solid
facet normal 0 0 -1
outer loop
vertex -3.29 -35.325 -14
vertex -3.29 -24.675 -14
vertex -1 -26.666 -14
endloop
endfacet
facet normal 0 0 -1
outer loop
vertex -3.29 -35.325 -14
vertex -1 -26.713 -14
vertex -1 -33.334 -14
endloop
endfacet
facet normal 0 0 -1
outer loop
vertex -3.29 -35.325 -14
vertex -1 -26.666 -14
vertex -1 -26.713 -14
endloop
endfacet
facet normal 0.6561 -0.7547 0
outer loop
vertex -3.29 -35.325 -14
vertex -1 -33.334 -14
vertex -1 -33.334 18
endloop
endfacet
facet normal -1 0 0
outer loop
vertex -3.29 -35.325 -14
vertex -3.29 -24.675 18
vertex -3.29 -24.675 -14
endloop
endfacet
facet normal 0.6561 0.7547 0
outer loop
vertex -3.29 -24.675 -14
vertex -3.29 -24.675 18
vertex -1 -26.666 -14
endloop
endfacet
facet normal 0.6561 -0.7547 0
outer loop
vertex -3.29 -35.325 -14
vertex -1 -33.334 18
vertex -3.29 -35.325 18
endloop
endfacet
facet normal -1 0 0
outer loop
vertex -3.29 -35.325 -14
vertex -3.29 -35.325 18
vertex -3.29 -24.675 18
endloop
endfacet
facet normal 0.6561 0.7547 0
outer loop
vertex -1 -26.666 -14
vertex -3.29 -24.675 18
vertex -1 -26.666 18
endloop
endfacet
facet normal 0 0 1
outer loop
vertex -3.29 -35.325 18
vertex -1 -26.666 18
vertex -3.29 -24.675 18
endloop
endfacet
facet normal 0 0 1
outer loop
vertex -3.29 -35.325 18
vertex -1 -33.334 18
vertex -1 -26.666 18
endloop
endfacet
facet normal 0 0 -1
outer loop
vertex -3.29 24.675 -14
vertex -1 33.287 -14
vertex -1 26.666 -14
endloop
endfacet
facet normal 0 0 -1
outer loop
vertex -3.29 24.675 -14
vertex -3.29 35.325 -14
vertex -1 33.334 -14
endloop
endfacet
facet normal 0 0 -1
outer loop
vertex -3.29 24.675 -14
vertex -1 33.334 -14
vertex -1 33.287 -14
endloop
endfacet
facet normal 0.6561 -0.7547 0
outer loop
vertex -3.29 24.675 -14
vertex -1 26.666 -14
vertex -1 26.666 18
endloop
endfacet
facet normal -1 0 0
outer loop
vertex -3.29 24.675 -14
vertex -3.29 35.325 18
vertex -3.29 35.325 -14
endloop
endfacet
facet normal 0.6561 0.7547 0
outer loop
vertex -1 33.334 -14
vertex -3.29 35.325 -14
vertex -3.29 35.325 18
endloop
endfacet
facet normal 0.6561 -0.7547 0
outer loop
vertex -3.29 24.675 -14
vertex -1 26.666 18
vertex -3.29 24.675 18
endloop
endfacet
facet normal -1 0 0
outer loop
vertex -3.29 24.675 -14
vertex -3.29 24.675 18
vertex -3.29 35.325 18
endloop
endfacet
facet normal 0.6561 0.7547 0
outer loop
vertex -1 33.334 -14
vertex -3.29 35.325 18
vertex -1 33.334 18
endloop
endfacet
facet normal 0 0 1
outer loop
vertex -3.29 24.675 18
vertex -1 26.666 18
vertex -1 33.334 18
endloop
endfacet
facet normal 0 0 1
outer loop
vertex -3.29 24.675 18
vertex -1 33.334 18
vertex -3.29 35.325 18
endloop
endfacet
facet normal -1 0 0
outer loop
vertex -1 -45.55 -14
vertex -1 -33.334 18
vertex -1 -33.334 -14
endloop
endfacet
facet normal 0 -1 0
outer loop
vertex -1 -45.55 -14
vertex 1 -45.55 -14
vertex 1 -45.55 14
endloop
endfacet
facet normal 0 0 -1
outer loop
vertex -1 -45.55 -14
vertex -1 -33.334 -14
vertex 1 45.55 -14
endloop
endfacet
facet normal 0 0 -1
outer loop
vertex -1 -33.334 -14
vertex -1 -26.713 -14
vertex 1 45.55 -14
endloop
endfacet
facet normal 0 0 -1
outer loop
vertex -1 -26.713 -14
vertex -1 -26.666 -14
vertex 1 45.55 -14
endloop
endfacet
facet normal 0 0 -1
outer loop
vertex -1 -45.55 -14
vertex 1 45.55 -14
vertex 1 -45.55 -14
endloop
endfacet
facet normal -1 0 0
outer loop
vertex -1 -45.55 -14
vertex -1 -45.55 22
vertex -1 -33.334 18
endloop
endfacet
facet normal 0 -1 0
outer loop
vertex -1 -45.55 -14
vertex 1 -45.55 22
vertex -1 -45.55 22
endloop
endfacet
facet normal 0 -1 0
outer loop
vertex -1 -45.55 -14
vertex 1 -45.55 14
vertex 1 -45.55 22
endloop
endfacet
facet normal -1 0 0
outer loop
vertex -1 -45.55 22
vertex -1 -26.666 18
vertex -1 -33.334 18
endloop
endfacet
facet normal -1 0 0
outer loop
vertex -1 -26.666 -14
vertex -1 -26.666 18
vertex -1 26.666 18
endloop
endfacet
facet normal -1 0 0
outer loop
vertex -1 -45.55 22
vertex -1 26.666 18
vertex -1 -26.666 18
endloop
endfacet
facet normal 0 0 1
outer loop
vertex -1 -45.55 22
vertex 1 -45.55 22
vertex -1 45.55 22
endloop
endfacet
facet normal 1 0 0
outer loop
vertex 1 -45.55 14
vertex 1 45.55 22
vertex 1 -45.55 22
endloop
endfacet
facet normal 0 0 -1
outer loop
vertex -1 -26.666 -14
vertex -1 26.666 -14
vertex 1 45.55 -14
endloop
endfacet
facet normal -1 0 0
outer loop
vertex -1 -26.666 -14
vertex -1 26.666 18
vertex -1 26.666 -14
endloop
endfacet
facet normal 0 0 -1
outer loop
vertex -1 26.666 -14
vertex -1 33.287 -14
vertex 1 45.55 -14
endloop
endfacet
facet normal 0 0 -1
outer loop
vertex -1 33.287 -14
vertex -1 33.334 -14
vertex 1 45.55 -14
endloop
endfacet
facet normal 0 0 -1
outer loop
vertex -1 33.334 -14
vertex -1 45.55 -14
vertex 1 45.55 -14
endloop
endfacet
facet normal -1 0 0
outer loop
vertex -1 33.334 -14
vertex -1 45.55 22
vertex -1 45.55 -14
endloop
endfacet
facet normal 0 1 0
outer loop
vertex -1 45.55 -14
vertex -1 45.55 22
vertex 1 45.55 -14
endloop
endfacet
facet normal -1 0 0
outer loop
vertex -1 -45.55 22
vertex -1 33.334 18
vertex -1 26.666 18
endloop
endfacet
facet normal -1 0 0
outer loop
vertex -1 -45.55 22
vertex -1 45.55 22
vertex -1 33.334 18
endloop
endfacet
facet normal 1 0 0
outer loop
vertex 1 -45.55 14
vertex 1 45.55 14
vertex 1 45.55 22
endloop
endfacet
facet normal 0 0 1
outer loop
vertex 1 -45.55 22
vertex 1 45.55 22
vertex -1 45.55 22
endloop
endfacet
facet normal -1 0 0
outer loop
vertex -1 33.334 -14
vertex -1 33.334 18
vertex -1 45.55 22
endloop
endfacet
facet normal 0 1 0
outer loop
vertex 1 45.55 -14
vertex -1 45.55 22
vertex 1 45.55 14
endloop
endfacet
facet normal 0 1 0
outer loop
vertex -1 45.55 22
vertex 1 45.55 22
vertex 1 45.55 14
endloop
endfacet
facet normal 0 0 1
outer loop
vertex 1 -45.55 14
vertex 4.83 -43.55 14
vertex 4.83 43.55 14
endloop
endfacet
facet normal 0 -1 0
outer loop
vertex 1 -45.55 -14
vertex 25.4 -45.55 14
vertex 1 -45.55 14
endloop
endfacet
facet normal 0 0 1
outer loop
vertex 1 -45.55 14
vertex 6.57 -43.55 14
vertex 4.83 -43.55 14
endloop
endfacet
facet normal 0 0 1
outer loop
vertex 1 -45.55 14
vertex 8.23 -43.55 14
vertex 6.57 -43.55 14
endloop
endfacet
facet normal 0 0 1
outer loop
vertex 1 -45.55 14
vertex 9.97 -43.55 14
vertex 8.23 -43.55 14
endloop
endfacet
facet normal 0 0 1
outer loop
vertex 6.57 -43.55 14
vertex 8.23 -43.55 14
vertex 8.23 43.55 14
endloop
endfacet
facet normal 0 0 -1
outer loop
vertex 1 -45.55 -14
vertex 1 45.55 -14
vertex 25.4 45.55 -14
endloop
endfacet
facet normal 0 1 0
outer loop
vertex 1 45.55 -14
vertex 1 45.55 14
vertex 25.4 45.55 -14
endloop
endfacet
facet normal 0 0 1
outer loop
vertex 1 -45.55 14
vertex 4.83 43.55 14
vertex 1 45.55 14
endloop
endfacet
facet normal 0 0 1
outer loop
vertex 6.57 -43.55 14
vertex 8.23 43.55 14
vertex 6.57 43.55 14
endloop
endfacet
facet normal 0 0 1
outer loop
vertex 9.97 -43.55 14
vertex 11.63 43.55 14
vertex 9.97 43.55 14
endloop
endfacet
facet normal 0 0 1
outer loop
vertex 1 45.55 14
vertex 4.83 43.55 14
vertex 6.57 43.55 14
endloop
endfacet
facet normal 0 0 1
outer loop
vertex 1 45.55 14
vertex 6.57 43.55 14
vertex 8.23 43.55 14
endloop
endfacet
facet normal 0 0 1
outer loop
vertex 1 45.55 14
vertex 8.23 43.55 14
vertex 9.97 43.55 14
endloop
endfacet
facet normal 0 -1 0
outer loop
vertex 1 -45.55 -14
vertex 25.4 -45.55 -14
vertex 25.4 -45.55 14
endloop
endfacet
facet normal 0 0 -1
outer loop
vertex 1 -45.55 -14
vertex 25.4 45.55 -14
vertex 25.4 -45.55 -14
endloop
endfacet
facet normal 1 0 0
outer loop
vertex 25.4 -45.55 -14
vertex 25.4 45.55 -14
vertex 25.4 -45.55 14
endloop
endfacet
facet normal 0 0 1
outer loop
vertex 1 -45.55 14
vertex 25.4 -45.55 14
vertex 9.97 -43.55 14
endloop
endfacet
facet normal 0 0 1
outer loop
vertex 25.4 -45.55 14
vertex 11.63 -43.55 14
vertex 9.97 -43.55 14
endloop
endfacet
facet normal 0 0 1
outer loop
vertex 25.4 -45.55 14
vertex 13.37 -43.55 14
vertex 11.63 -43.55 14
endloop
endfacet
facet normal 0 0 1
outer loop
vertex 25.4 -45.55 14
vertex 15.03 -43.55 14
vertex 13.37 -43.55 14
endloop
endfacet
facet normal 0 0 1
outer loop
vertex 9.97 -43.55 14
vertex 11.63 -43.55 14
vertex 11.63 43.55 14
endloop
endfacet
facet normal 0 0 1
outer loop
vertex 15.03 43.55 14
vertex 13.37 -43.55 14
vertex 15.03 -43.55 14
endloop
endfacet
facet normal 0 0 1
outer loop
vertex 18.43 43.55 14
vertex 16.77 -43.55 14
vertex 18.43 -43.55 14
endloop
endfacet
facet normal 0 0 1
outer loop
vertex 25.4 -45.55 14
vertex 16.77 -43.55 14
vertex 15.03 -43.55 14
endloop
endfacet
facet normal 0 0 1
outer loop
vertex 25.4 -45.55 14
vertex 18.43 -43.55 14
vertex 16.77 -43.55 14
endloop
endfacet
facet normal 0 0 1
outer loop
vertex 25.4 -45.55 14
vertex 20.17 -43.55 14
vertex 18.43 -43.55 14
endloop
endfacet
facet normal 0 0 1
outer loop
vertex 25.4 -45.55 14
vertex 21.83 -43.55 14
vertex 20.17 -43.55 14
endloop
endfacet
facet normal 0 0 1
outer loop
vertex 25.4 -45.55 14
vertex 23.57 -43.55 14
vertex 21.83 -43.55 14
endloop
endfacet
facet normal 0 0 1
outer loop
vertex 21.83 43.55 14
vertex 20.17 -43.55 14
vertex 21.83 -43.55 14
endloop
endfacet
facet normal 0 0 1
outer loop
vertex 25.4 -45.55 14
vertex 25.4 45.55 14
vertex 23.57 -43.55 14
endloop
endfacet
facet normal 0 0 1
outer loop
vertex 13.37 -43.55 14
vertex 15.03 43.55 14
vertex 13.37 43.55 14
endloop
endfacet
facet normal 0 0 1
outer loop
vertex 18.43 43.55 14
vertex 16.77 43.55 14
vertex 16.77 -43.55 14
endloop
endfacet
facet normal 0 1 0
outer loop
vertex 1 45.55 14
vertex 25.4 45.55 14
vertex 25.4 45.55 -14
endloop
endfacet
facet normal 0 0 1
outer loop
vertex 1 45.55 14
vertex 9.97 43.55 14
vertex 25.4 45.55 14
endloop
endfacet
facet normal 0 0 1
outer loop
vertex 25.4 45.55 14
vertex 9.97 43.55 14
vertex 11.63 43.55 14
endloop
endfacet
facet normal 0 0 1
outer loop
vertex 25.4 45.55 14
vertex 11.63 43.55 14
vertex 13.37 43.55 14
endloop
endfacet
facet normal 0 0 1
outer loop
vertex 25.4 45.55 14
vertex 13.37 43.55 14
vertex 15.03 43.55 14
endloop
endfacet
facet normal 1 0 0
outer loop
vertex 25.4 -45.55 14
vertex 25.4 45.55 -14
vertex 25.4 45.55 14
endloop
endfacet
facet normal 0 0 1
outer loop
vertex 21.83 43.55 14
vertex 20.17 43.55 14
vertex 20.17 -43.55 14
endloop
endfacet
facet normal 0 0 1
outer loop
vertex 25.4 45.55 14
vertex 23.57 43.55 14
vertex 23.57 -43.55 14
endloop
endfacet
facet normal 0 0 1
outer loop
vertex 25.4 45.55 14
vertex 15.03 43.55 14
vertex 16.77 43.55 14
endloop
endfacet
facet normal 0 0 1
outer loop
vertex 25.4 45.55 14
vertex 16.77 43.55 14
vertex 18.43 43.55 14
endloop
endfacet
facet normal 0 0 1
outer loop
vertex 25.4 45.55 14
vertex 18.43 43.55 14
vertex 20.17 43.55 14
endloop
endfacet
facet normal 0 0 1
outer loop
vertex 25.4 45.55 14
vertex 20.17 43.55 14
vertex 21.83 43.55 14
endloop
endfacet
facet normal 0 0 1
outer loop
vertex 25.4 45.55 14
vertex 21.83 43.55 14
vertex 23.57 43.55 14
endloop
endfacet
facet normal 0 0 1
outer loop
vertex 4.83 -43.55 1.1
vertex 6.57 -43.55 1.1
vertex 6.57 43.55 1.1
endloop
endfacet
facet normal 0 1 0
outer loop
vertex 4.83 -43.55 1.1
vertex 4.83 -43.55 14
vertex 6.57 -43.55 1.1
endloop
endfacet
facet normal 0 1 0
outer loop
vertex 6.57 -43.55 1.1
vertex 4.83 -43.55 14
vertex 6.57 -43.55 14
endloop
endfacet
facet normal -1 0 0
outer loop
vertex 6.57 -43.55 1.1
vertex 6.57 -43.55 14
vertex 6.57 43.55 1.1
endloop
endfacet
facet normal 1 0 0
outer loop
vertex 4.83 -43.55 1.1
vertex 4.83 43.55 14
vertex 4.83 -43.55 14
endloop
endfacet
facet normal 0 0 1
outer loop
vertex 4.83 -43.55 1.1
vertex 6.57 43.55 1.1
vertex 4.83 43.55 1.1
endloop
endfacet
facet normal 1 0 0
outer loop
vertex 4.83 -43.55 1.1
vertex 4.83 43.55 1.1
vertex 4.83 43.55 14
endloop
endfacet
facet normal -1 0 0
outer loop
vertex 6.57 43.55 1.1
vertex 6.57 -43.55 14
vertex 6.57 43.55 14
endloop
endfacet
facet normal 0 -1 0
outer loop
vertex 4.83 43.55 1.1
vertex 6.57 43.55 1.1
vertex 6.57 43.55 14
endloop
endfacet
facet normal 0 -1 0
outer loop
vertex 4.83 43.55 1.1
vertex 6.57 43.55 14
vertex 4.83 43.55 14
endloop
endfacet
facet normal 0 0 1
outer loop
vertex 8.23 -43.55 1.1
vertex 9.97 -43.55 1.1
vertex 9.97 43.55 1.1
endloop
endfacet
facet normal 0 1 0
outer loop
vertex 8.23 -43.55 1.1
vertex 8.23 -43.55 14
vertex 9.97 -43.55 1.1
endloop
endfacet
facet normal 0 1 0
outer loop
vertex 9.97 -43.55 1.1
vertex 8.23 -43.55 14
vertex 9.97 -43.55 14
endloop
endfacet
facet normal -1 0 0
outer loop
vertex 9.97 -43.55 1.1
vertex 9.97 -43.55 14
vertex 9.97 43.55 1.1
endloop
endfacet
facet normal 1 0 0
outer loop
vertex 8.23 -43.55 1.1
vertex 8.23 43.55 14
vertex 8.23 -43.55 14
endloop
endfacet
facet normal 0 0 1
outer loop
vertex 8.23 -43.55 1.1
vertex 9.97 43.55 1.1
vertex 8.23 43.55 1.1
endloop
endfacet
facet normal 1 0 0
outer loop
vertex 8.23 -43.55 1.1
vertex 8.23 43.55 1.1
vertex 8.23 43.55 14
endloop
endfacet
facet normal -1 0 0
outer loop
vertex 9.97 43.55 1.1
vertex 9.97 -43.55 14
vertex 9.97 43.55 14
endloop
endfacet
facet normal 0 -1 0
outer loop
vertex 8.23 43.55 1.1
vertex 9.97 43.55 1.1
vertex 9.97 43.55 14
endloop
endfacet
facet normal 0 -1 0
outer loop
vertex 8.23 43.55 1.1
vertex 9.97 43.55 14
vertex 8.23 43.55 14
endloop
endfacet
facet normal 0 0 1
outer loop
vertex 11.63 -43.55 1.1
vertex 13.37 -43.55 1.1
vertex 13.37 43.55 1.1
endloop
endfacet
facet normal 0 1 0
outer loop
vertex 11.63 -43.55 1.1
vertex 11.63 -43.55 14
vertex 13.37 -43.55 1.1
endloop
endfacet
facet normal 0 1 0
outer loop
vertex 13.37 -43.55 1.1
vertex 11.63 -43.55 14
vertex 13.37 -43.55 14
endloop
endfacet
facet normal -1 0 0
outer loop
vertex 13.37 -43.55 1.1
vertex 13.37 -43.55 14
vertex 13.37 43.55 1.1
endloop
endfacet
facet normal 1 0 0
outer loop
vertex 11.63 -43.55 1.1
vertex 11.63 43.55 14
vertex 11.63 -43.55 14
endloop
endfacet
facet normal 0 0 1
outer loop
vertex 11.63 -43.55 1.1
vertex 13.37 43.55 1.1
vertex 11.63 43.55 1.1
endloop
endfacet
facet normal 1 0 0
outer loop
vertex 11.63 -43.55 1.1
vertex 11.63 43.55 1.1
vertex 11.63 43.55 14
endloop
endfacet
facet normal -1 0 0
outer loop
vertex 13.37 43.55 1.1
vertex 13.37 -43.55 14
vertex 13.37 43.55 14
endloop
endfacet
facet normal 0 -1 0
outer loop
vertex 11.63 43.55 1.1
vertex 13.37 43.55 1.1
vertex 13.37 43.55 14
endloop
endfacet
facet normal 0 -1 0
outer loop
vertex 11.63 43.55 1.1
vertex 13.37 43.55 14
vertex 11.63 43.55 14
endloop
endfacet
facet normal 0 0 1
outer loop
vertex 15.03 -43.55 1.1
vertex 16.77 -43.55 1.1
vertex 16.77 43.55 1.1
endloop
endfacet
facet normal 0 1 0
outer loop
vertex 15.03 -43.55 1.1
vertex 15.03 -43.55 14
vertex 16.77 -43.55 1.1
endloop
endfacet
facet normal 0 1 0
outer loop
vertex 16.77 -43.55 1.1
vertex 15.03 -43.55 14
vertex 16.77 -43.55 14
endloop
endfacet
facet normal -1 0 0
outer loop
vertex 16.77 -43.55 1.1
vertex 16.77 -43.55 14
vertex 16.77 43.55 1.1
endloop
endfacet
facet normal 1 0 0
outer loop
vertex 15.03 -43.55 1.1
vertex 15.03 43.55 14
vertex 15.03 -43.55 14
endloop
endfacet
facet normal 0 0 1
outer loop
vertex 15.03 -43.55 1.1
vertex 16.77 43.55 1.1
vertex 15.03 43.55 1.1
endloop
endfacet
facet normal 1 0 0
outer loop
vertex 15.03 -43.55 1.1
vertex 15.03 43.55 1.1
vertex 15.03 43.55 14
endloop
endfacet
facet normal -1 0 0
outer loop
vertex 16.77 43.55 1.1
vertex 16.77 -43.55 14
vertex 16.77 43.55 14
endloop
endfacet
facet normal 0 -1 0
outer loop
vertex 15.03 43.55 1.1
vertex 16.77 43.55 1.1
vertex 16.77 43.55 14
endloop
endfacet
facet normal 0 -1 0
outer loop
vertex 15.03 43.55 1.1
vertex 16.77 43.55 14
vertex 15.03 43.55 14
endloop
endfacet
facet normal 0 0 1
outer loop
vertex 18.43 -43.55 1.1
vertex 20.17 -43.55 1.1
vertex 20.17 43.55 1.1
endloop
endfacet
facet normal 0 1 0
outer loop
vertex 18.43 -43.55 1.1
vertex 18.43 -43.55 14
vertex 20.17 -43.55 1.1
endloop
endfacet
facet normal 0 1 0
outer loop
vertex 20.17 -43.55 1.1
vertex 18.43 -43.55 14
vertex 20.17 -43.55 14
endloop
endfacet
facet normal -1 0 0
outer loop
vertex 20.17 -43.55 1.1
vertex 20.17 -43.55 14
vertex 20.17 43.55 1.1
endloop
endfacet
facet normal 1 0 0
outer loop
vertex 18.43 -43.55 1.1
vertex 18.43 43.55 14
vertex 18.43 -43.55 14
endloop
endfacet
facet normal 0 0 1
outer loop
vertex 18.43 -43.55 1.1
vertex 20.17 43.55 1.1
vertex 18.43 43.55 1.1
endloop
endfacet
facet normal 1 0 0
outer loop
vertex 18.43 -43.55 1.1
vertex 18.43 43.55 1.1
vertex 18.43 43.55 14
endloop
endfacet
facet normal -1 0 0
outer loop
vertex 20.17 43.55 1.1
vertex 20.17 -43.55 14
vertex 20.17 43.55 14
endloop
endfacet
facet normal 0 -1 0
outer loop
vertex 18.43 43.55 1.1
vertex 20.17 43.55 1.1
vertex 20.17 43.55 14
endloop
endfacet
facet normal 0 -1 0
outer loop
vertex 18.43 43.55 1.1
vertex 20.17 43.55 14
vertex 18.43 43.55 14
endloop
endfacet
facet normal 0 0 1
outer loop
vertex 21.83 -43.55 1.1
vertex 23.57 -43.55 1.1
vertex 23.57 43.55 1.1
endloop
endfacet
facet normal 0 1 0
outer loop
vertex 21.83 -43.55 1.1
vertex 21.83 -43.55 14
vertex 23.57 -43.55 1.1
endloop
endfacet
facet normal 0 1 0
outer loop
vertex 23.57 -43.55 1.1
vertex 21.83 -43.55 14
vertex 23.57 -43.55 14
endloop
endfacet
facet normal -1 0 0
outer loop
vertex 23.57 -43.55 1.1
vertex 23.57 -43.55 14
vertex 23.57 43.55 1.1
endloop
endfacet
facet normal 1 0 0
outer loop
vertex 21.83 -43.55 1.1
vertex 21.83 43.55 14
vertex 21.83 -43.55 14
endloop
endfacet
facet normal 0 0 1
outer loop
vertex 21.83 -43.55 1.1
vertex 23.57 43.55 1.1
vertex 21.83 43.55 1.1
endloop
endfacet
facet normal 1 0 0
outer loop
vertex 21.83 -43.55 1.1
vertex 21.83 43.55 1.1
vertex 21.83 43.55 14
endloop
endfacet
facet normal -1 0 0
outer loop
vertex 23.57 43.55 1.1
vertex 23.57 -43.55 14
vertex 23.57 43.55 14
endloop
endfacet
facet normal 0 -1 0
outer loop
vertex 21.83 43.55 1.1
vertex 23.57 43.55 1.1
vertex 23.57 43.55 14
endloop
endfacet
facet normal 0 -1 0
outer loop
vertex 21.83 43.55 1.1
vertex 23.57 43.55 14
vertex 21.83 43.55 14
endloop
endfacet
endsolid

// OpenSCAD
// file: ../../sorgenti/libreria.scad
// ============================================================
// libreria.scad — forme di base riusate da tutti i pezzi
// ============================================================
include <parametri.scad>

$fn = RISOLUZIONE;

// Prisma a sezione rettangolare con angoli arrotondati.
module piastra(x, y, h, r) {
    linear_extrude(height = h)
        offset(r = r) square([x - 2*r, y - 2*r], center = true);
}

// Scatola piena con angoli verticali arrotondati (rv) e bordo
// superiore raccordato (rt). Il raccordo è approssimato a gradini
// uniti con hull(): resta liscio e si stampa senza supporti.
module scatola_arrotondata(x, y, z, rv, rt, passi = 12) {
    union() {
        piastra(x, y, z - rt, rv);
        for (i = [0 : passi - 1]) {
            a0 = 90 * i / passi;
            a1 = 90 * (i + 1) / passi;
            k0 = rt * (1 - cos(a0));  k1 = rt * (1 - cos(a1));
            h0 = rt * sin(a0);        h1 = rt * sin(a1);
            hull() {
                translate([0, 0, z - rt + h0])
                    piastra(x - 2*k0, y - 2*k0, 0.02, max(rv - k0, 0.6));
                translate([0, 0, z - rt + h1])
                    piastra(x - 2*k1, y - 2*k1, 0.02, max(rv - k1, 0.6));
            }
        }
    }
}

// Foro di passaggio per vite con svasatura della testa (testa in basso,
// si avvita dal basso verso l'alto).
module foro_svasato(h = 10, d = VITE_FORO, testa_d = VITE_TESTA_D, testa_h = 1.6) {
    translate([0, 0, -0.1]) cylinder(h = h + 0.2, d = d);
    translate([0, 0, -0.1]) cylinder(h = testa_h + 0.1, d1 = testa_d, d2 = d);
}

// Pilastrino con sede per inserto a caldo M2,5 (si inserisce dal basso).
module boss_inserto(h = 12, d = BOSS_D) {
    difference() {
        cylinder(h = h, d = d);
        translate([0, 0, -0.1]) cylinder(h = INSERTO_H + 0.1, d = INSERTO_D);
        // scarico sopra l'inserto, per la punta della vite
        translate([0, 0, INSERTO_H]) cylinder(h = h, d = VITE_D + 0.4);
    }
}

// Griglia di fori a nido d'ape dentro un cerchio di diametro d_area.
module griglia_tonda(d_area, spessore, d_foro = ALT_GRIGLIA_D, passo = 3.2) {
    n = ceil(d_area / passo) + 2;
    for (i = [-n : n], j = [-n : n]) {
        x = i * passo + (abs(j) % 2) * passo / 2;
        y = j * passo * 0.866;
        if (sqrt(x*x + y*y) <= (d_area - d_foro) / 2)
            translate([x, y, -0.1]) cylinder(h = spessore + 0.2, d = d_foro);
    }
}

// Fessura allungata (slot) con estremi arrotondati, asse X.
module fessura(lung, larg, h) {
    hull() {
        translate([-(lung - larg)/2, 0, 0]) cylinder(h = h, d = larg);
        translate([ (lung - larg)/2, 0, 0]) cylinder(h = h, d = larg);
    }
}

// Scritta in rilievo (per i provini e le etichette).
module scritta(t, dim = 6, alt = 0.6) {
    linear_extrude(height = alt)
        text(t, size = dim, halign = "center", valign = "center",
             font = "Helvetica:style=Bold");
}

// Freccia piena, punta verso +X, usata per le icone dei tasti.
module freccia(lung = 16, larg = 14, alt = 0.8) {
    gambo = larg / 5;          // mezza larghezza del gambo
    testa = lung * 0.45;       // lunghezza della punta
    linear_extrude(height = alt)
        polygon([[-lung/2, -gambo], [lung/2 - testa, -gambo],
                 [lung/2 - testa, -larg/2], [lung/2, 0],
                 [lung/2 - testa, larg/2], [lung/2 - testa, gambo],
                 [-lung/2, gambo]]);
}

// Icona "volume": tre barrette crescenti, asse X.
module icona_volume(n = 3, alt = 0.8, passo = 3.2, base = 2.0, cresc = 1.6) {
    for (i = [0 : n - 1])
        translate([i * passo, 0, 0])
            linear_extrude(height = alt)
                square([1.8, base + i * cresc], center = true);
}

// Cava a sezione rettangolare arrotondata, asse di estrusione Y.
// Utile per finestre e fessure nelle pareti verticali.
module cava_y(x, z, prof, r = 1.5) {
    rotate([90, 0, 0])
        linear_extrude(height = prof, center = true)
            offset(r = r) square([x - 2*r, z - 2*r], center = true);
}

// Pilastrino che parte dal piano del fondo e ospita un inserto a caldo
// (inserito dal basso). La punta conica in alto lo rende stampabile
// anche a scatola capovolta.
module boss_fondo(h = 12) {
    union() {
        difference() {
            cylinder(h = h, d = BOSS_D);
            translate([0, 0, -0.1]) cylinder(h = INSERTO_H + 0.1, d = INSERTO_D);
            translate([0, 0, INSERTO_H]) cylinder(h = h, d = VITE_D + 0.6);
        }
        translate([0, 0, h]) cylinder(h = BOSS_D/2, d1 = BOSS_D, d2 = 0.4);
    }
}

// Pilastrino appeso al soffitto (coperchio): l'inserto entra dal basso.
module boss_soffitto(h = 7) {
    difference() {
        translate([0, 0, -h]) cylinder(h = h, d = BOSS_D);
        translate([0, 0, -h - 0.1]) cylinder(h = INSERTO_H + 0.1, d = INSERTO_D);
    }
}

// Maschio della coda di rondine: si infila nella cava della fiancata.
// Si stampa in verticale insieme al raccoglitore, quindi senza supporti.
module coda_maschio(altezza) {
    gioco = 0.35;
    rotate([-90, 0, 0])
        linear_extrude(height = altezza)
            polygon([[0, -(CODA_FONDO - gioco)/2], [0, (CODA_FONDO - gioco)/2],
                     [CODA_PROF - 0.3, (CODA_BOCCA - gioco)/2],
                     [CODA_PROF - 0.3, -(CODA_BOCCA - gioco)/2]]);
}
// file: raccoglitore.scad
// ============================================================
// raccoglitore.scad — il corpo comune dei due raccoglitori
// ------------------------------------------------------------
// Si infila dall'alto nelle due code di rondine della fiancata e
// sta su da solo: niente viti, e si sfila per portare in giro il
// box senza la collezione.
//
// Lo usano raccoglitore-carte.scad e raccoglitore-dischi.scad,
// che cambiano solo passo e profondità delle fessure.
//
// STAMPA: appoggiato sulla schiena (la faccia delle code sul
// piano), fessure verso l'alto. Niente supporti.
// ============================================================
include <../../sorgenti/libreria.scad>

// raccoglitore(n, passo, fessura, largo, alto_fessura, sporge)
//   n            quante cose ci stanno
//   passo        distanza fra una fessura e l'altra
//   fessura      larghezza della singola fessura
//   largo        lunghezza utile della fessura (lato Y)
//   alto_fessura quanto è profonda la tasca che trattiene
//   sporge       quanto sporge dal box
module raccoglitore(n, passo, fessura, largo, alto_fessura, sporge) {
    sp = 2.0;                       // pareti
    corpo_y = largo + 2 * sp;
    corpo_x = sporge;
    corpo_z = alto_fessura + sp;
    schiena_z = corpo_z + 8;        // appena più alta della vasca: le code
                                    // prendono su tutta l'altezza e il
                                    // raccoglitore resta un blocchetto

    difference() {
        union() {
            // schiena, appoggiata alla fiancata
            translate([0, 0, schiena_z/2 - corpo_z/2])
                cube([sp, corpo_y, schiena_z], center = true);
            // vasca
            translate([corpo_x/2 + sp/2, 0, 0])
                cube([corpo_x, corpo_y, corpo_z], center = true);
            // le due code
            for (sy = [-1, 1])
                translate([-sp/2 + 0.01, sy * CODA_INTERASSE/2, -corpo_z/2])
                    coda_maschio_verticale(schiena_z - 4);
        }
        // le fessure
        for (i = [0 : n - 1]) {
            x = sp + passo * (i + 0.5) + (corpo_x - n * passo) / 2;
            translate([x, 0, sp + corpo_z/2 - sp/2 + 0.1])
                cube([fessura, largo, corpo_z], center = true);
        }
    }
}

// La coda va estrusa lungo Z (si stampa in piedi), non lungo Y.
module coda_maschio_verticale(altezza) {
    gioco = 0.35;
    linear_extrude(height = altezza)
        polygon([[0, -(CODA_BOCCA - gioco)/2], [0, (CODA_BOCCA - gioco)/2],
                 [-(CODA_PROF - 0.3), (CODA_FONDO - gioco)/2],
                 [-(CODA_PROF - 0.3), -(CODA_FONDO - gioco)/2]]);
}
// main file
// Raccoglitore per sei carte delle storie (CR80, 85,6 x 54).
// Le carte stanno in piedi e si vedono: il bambino sceglie guardando.
include <raccoglitore.scad>

raccoglitore_carte();

module raccoglitore_carte() {
    raccoglitore(n = RACC_CARTE_N, passo = RACC_CARTE_PASSO, fessura = CARTA_SP + 0.9,
             largo = CARTA_X + 1.5, alto_fessura = 26,
             sporge = RACC_CARTE_N * RACC_CARTE_PASSO + 4);
}
